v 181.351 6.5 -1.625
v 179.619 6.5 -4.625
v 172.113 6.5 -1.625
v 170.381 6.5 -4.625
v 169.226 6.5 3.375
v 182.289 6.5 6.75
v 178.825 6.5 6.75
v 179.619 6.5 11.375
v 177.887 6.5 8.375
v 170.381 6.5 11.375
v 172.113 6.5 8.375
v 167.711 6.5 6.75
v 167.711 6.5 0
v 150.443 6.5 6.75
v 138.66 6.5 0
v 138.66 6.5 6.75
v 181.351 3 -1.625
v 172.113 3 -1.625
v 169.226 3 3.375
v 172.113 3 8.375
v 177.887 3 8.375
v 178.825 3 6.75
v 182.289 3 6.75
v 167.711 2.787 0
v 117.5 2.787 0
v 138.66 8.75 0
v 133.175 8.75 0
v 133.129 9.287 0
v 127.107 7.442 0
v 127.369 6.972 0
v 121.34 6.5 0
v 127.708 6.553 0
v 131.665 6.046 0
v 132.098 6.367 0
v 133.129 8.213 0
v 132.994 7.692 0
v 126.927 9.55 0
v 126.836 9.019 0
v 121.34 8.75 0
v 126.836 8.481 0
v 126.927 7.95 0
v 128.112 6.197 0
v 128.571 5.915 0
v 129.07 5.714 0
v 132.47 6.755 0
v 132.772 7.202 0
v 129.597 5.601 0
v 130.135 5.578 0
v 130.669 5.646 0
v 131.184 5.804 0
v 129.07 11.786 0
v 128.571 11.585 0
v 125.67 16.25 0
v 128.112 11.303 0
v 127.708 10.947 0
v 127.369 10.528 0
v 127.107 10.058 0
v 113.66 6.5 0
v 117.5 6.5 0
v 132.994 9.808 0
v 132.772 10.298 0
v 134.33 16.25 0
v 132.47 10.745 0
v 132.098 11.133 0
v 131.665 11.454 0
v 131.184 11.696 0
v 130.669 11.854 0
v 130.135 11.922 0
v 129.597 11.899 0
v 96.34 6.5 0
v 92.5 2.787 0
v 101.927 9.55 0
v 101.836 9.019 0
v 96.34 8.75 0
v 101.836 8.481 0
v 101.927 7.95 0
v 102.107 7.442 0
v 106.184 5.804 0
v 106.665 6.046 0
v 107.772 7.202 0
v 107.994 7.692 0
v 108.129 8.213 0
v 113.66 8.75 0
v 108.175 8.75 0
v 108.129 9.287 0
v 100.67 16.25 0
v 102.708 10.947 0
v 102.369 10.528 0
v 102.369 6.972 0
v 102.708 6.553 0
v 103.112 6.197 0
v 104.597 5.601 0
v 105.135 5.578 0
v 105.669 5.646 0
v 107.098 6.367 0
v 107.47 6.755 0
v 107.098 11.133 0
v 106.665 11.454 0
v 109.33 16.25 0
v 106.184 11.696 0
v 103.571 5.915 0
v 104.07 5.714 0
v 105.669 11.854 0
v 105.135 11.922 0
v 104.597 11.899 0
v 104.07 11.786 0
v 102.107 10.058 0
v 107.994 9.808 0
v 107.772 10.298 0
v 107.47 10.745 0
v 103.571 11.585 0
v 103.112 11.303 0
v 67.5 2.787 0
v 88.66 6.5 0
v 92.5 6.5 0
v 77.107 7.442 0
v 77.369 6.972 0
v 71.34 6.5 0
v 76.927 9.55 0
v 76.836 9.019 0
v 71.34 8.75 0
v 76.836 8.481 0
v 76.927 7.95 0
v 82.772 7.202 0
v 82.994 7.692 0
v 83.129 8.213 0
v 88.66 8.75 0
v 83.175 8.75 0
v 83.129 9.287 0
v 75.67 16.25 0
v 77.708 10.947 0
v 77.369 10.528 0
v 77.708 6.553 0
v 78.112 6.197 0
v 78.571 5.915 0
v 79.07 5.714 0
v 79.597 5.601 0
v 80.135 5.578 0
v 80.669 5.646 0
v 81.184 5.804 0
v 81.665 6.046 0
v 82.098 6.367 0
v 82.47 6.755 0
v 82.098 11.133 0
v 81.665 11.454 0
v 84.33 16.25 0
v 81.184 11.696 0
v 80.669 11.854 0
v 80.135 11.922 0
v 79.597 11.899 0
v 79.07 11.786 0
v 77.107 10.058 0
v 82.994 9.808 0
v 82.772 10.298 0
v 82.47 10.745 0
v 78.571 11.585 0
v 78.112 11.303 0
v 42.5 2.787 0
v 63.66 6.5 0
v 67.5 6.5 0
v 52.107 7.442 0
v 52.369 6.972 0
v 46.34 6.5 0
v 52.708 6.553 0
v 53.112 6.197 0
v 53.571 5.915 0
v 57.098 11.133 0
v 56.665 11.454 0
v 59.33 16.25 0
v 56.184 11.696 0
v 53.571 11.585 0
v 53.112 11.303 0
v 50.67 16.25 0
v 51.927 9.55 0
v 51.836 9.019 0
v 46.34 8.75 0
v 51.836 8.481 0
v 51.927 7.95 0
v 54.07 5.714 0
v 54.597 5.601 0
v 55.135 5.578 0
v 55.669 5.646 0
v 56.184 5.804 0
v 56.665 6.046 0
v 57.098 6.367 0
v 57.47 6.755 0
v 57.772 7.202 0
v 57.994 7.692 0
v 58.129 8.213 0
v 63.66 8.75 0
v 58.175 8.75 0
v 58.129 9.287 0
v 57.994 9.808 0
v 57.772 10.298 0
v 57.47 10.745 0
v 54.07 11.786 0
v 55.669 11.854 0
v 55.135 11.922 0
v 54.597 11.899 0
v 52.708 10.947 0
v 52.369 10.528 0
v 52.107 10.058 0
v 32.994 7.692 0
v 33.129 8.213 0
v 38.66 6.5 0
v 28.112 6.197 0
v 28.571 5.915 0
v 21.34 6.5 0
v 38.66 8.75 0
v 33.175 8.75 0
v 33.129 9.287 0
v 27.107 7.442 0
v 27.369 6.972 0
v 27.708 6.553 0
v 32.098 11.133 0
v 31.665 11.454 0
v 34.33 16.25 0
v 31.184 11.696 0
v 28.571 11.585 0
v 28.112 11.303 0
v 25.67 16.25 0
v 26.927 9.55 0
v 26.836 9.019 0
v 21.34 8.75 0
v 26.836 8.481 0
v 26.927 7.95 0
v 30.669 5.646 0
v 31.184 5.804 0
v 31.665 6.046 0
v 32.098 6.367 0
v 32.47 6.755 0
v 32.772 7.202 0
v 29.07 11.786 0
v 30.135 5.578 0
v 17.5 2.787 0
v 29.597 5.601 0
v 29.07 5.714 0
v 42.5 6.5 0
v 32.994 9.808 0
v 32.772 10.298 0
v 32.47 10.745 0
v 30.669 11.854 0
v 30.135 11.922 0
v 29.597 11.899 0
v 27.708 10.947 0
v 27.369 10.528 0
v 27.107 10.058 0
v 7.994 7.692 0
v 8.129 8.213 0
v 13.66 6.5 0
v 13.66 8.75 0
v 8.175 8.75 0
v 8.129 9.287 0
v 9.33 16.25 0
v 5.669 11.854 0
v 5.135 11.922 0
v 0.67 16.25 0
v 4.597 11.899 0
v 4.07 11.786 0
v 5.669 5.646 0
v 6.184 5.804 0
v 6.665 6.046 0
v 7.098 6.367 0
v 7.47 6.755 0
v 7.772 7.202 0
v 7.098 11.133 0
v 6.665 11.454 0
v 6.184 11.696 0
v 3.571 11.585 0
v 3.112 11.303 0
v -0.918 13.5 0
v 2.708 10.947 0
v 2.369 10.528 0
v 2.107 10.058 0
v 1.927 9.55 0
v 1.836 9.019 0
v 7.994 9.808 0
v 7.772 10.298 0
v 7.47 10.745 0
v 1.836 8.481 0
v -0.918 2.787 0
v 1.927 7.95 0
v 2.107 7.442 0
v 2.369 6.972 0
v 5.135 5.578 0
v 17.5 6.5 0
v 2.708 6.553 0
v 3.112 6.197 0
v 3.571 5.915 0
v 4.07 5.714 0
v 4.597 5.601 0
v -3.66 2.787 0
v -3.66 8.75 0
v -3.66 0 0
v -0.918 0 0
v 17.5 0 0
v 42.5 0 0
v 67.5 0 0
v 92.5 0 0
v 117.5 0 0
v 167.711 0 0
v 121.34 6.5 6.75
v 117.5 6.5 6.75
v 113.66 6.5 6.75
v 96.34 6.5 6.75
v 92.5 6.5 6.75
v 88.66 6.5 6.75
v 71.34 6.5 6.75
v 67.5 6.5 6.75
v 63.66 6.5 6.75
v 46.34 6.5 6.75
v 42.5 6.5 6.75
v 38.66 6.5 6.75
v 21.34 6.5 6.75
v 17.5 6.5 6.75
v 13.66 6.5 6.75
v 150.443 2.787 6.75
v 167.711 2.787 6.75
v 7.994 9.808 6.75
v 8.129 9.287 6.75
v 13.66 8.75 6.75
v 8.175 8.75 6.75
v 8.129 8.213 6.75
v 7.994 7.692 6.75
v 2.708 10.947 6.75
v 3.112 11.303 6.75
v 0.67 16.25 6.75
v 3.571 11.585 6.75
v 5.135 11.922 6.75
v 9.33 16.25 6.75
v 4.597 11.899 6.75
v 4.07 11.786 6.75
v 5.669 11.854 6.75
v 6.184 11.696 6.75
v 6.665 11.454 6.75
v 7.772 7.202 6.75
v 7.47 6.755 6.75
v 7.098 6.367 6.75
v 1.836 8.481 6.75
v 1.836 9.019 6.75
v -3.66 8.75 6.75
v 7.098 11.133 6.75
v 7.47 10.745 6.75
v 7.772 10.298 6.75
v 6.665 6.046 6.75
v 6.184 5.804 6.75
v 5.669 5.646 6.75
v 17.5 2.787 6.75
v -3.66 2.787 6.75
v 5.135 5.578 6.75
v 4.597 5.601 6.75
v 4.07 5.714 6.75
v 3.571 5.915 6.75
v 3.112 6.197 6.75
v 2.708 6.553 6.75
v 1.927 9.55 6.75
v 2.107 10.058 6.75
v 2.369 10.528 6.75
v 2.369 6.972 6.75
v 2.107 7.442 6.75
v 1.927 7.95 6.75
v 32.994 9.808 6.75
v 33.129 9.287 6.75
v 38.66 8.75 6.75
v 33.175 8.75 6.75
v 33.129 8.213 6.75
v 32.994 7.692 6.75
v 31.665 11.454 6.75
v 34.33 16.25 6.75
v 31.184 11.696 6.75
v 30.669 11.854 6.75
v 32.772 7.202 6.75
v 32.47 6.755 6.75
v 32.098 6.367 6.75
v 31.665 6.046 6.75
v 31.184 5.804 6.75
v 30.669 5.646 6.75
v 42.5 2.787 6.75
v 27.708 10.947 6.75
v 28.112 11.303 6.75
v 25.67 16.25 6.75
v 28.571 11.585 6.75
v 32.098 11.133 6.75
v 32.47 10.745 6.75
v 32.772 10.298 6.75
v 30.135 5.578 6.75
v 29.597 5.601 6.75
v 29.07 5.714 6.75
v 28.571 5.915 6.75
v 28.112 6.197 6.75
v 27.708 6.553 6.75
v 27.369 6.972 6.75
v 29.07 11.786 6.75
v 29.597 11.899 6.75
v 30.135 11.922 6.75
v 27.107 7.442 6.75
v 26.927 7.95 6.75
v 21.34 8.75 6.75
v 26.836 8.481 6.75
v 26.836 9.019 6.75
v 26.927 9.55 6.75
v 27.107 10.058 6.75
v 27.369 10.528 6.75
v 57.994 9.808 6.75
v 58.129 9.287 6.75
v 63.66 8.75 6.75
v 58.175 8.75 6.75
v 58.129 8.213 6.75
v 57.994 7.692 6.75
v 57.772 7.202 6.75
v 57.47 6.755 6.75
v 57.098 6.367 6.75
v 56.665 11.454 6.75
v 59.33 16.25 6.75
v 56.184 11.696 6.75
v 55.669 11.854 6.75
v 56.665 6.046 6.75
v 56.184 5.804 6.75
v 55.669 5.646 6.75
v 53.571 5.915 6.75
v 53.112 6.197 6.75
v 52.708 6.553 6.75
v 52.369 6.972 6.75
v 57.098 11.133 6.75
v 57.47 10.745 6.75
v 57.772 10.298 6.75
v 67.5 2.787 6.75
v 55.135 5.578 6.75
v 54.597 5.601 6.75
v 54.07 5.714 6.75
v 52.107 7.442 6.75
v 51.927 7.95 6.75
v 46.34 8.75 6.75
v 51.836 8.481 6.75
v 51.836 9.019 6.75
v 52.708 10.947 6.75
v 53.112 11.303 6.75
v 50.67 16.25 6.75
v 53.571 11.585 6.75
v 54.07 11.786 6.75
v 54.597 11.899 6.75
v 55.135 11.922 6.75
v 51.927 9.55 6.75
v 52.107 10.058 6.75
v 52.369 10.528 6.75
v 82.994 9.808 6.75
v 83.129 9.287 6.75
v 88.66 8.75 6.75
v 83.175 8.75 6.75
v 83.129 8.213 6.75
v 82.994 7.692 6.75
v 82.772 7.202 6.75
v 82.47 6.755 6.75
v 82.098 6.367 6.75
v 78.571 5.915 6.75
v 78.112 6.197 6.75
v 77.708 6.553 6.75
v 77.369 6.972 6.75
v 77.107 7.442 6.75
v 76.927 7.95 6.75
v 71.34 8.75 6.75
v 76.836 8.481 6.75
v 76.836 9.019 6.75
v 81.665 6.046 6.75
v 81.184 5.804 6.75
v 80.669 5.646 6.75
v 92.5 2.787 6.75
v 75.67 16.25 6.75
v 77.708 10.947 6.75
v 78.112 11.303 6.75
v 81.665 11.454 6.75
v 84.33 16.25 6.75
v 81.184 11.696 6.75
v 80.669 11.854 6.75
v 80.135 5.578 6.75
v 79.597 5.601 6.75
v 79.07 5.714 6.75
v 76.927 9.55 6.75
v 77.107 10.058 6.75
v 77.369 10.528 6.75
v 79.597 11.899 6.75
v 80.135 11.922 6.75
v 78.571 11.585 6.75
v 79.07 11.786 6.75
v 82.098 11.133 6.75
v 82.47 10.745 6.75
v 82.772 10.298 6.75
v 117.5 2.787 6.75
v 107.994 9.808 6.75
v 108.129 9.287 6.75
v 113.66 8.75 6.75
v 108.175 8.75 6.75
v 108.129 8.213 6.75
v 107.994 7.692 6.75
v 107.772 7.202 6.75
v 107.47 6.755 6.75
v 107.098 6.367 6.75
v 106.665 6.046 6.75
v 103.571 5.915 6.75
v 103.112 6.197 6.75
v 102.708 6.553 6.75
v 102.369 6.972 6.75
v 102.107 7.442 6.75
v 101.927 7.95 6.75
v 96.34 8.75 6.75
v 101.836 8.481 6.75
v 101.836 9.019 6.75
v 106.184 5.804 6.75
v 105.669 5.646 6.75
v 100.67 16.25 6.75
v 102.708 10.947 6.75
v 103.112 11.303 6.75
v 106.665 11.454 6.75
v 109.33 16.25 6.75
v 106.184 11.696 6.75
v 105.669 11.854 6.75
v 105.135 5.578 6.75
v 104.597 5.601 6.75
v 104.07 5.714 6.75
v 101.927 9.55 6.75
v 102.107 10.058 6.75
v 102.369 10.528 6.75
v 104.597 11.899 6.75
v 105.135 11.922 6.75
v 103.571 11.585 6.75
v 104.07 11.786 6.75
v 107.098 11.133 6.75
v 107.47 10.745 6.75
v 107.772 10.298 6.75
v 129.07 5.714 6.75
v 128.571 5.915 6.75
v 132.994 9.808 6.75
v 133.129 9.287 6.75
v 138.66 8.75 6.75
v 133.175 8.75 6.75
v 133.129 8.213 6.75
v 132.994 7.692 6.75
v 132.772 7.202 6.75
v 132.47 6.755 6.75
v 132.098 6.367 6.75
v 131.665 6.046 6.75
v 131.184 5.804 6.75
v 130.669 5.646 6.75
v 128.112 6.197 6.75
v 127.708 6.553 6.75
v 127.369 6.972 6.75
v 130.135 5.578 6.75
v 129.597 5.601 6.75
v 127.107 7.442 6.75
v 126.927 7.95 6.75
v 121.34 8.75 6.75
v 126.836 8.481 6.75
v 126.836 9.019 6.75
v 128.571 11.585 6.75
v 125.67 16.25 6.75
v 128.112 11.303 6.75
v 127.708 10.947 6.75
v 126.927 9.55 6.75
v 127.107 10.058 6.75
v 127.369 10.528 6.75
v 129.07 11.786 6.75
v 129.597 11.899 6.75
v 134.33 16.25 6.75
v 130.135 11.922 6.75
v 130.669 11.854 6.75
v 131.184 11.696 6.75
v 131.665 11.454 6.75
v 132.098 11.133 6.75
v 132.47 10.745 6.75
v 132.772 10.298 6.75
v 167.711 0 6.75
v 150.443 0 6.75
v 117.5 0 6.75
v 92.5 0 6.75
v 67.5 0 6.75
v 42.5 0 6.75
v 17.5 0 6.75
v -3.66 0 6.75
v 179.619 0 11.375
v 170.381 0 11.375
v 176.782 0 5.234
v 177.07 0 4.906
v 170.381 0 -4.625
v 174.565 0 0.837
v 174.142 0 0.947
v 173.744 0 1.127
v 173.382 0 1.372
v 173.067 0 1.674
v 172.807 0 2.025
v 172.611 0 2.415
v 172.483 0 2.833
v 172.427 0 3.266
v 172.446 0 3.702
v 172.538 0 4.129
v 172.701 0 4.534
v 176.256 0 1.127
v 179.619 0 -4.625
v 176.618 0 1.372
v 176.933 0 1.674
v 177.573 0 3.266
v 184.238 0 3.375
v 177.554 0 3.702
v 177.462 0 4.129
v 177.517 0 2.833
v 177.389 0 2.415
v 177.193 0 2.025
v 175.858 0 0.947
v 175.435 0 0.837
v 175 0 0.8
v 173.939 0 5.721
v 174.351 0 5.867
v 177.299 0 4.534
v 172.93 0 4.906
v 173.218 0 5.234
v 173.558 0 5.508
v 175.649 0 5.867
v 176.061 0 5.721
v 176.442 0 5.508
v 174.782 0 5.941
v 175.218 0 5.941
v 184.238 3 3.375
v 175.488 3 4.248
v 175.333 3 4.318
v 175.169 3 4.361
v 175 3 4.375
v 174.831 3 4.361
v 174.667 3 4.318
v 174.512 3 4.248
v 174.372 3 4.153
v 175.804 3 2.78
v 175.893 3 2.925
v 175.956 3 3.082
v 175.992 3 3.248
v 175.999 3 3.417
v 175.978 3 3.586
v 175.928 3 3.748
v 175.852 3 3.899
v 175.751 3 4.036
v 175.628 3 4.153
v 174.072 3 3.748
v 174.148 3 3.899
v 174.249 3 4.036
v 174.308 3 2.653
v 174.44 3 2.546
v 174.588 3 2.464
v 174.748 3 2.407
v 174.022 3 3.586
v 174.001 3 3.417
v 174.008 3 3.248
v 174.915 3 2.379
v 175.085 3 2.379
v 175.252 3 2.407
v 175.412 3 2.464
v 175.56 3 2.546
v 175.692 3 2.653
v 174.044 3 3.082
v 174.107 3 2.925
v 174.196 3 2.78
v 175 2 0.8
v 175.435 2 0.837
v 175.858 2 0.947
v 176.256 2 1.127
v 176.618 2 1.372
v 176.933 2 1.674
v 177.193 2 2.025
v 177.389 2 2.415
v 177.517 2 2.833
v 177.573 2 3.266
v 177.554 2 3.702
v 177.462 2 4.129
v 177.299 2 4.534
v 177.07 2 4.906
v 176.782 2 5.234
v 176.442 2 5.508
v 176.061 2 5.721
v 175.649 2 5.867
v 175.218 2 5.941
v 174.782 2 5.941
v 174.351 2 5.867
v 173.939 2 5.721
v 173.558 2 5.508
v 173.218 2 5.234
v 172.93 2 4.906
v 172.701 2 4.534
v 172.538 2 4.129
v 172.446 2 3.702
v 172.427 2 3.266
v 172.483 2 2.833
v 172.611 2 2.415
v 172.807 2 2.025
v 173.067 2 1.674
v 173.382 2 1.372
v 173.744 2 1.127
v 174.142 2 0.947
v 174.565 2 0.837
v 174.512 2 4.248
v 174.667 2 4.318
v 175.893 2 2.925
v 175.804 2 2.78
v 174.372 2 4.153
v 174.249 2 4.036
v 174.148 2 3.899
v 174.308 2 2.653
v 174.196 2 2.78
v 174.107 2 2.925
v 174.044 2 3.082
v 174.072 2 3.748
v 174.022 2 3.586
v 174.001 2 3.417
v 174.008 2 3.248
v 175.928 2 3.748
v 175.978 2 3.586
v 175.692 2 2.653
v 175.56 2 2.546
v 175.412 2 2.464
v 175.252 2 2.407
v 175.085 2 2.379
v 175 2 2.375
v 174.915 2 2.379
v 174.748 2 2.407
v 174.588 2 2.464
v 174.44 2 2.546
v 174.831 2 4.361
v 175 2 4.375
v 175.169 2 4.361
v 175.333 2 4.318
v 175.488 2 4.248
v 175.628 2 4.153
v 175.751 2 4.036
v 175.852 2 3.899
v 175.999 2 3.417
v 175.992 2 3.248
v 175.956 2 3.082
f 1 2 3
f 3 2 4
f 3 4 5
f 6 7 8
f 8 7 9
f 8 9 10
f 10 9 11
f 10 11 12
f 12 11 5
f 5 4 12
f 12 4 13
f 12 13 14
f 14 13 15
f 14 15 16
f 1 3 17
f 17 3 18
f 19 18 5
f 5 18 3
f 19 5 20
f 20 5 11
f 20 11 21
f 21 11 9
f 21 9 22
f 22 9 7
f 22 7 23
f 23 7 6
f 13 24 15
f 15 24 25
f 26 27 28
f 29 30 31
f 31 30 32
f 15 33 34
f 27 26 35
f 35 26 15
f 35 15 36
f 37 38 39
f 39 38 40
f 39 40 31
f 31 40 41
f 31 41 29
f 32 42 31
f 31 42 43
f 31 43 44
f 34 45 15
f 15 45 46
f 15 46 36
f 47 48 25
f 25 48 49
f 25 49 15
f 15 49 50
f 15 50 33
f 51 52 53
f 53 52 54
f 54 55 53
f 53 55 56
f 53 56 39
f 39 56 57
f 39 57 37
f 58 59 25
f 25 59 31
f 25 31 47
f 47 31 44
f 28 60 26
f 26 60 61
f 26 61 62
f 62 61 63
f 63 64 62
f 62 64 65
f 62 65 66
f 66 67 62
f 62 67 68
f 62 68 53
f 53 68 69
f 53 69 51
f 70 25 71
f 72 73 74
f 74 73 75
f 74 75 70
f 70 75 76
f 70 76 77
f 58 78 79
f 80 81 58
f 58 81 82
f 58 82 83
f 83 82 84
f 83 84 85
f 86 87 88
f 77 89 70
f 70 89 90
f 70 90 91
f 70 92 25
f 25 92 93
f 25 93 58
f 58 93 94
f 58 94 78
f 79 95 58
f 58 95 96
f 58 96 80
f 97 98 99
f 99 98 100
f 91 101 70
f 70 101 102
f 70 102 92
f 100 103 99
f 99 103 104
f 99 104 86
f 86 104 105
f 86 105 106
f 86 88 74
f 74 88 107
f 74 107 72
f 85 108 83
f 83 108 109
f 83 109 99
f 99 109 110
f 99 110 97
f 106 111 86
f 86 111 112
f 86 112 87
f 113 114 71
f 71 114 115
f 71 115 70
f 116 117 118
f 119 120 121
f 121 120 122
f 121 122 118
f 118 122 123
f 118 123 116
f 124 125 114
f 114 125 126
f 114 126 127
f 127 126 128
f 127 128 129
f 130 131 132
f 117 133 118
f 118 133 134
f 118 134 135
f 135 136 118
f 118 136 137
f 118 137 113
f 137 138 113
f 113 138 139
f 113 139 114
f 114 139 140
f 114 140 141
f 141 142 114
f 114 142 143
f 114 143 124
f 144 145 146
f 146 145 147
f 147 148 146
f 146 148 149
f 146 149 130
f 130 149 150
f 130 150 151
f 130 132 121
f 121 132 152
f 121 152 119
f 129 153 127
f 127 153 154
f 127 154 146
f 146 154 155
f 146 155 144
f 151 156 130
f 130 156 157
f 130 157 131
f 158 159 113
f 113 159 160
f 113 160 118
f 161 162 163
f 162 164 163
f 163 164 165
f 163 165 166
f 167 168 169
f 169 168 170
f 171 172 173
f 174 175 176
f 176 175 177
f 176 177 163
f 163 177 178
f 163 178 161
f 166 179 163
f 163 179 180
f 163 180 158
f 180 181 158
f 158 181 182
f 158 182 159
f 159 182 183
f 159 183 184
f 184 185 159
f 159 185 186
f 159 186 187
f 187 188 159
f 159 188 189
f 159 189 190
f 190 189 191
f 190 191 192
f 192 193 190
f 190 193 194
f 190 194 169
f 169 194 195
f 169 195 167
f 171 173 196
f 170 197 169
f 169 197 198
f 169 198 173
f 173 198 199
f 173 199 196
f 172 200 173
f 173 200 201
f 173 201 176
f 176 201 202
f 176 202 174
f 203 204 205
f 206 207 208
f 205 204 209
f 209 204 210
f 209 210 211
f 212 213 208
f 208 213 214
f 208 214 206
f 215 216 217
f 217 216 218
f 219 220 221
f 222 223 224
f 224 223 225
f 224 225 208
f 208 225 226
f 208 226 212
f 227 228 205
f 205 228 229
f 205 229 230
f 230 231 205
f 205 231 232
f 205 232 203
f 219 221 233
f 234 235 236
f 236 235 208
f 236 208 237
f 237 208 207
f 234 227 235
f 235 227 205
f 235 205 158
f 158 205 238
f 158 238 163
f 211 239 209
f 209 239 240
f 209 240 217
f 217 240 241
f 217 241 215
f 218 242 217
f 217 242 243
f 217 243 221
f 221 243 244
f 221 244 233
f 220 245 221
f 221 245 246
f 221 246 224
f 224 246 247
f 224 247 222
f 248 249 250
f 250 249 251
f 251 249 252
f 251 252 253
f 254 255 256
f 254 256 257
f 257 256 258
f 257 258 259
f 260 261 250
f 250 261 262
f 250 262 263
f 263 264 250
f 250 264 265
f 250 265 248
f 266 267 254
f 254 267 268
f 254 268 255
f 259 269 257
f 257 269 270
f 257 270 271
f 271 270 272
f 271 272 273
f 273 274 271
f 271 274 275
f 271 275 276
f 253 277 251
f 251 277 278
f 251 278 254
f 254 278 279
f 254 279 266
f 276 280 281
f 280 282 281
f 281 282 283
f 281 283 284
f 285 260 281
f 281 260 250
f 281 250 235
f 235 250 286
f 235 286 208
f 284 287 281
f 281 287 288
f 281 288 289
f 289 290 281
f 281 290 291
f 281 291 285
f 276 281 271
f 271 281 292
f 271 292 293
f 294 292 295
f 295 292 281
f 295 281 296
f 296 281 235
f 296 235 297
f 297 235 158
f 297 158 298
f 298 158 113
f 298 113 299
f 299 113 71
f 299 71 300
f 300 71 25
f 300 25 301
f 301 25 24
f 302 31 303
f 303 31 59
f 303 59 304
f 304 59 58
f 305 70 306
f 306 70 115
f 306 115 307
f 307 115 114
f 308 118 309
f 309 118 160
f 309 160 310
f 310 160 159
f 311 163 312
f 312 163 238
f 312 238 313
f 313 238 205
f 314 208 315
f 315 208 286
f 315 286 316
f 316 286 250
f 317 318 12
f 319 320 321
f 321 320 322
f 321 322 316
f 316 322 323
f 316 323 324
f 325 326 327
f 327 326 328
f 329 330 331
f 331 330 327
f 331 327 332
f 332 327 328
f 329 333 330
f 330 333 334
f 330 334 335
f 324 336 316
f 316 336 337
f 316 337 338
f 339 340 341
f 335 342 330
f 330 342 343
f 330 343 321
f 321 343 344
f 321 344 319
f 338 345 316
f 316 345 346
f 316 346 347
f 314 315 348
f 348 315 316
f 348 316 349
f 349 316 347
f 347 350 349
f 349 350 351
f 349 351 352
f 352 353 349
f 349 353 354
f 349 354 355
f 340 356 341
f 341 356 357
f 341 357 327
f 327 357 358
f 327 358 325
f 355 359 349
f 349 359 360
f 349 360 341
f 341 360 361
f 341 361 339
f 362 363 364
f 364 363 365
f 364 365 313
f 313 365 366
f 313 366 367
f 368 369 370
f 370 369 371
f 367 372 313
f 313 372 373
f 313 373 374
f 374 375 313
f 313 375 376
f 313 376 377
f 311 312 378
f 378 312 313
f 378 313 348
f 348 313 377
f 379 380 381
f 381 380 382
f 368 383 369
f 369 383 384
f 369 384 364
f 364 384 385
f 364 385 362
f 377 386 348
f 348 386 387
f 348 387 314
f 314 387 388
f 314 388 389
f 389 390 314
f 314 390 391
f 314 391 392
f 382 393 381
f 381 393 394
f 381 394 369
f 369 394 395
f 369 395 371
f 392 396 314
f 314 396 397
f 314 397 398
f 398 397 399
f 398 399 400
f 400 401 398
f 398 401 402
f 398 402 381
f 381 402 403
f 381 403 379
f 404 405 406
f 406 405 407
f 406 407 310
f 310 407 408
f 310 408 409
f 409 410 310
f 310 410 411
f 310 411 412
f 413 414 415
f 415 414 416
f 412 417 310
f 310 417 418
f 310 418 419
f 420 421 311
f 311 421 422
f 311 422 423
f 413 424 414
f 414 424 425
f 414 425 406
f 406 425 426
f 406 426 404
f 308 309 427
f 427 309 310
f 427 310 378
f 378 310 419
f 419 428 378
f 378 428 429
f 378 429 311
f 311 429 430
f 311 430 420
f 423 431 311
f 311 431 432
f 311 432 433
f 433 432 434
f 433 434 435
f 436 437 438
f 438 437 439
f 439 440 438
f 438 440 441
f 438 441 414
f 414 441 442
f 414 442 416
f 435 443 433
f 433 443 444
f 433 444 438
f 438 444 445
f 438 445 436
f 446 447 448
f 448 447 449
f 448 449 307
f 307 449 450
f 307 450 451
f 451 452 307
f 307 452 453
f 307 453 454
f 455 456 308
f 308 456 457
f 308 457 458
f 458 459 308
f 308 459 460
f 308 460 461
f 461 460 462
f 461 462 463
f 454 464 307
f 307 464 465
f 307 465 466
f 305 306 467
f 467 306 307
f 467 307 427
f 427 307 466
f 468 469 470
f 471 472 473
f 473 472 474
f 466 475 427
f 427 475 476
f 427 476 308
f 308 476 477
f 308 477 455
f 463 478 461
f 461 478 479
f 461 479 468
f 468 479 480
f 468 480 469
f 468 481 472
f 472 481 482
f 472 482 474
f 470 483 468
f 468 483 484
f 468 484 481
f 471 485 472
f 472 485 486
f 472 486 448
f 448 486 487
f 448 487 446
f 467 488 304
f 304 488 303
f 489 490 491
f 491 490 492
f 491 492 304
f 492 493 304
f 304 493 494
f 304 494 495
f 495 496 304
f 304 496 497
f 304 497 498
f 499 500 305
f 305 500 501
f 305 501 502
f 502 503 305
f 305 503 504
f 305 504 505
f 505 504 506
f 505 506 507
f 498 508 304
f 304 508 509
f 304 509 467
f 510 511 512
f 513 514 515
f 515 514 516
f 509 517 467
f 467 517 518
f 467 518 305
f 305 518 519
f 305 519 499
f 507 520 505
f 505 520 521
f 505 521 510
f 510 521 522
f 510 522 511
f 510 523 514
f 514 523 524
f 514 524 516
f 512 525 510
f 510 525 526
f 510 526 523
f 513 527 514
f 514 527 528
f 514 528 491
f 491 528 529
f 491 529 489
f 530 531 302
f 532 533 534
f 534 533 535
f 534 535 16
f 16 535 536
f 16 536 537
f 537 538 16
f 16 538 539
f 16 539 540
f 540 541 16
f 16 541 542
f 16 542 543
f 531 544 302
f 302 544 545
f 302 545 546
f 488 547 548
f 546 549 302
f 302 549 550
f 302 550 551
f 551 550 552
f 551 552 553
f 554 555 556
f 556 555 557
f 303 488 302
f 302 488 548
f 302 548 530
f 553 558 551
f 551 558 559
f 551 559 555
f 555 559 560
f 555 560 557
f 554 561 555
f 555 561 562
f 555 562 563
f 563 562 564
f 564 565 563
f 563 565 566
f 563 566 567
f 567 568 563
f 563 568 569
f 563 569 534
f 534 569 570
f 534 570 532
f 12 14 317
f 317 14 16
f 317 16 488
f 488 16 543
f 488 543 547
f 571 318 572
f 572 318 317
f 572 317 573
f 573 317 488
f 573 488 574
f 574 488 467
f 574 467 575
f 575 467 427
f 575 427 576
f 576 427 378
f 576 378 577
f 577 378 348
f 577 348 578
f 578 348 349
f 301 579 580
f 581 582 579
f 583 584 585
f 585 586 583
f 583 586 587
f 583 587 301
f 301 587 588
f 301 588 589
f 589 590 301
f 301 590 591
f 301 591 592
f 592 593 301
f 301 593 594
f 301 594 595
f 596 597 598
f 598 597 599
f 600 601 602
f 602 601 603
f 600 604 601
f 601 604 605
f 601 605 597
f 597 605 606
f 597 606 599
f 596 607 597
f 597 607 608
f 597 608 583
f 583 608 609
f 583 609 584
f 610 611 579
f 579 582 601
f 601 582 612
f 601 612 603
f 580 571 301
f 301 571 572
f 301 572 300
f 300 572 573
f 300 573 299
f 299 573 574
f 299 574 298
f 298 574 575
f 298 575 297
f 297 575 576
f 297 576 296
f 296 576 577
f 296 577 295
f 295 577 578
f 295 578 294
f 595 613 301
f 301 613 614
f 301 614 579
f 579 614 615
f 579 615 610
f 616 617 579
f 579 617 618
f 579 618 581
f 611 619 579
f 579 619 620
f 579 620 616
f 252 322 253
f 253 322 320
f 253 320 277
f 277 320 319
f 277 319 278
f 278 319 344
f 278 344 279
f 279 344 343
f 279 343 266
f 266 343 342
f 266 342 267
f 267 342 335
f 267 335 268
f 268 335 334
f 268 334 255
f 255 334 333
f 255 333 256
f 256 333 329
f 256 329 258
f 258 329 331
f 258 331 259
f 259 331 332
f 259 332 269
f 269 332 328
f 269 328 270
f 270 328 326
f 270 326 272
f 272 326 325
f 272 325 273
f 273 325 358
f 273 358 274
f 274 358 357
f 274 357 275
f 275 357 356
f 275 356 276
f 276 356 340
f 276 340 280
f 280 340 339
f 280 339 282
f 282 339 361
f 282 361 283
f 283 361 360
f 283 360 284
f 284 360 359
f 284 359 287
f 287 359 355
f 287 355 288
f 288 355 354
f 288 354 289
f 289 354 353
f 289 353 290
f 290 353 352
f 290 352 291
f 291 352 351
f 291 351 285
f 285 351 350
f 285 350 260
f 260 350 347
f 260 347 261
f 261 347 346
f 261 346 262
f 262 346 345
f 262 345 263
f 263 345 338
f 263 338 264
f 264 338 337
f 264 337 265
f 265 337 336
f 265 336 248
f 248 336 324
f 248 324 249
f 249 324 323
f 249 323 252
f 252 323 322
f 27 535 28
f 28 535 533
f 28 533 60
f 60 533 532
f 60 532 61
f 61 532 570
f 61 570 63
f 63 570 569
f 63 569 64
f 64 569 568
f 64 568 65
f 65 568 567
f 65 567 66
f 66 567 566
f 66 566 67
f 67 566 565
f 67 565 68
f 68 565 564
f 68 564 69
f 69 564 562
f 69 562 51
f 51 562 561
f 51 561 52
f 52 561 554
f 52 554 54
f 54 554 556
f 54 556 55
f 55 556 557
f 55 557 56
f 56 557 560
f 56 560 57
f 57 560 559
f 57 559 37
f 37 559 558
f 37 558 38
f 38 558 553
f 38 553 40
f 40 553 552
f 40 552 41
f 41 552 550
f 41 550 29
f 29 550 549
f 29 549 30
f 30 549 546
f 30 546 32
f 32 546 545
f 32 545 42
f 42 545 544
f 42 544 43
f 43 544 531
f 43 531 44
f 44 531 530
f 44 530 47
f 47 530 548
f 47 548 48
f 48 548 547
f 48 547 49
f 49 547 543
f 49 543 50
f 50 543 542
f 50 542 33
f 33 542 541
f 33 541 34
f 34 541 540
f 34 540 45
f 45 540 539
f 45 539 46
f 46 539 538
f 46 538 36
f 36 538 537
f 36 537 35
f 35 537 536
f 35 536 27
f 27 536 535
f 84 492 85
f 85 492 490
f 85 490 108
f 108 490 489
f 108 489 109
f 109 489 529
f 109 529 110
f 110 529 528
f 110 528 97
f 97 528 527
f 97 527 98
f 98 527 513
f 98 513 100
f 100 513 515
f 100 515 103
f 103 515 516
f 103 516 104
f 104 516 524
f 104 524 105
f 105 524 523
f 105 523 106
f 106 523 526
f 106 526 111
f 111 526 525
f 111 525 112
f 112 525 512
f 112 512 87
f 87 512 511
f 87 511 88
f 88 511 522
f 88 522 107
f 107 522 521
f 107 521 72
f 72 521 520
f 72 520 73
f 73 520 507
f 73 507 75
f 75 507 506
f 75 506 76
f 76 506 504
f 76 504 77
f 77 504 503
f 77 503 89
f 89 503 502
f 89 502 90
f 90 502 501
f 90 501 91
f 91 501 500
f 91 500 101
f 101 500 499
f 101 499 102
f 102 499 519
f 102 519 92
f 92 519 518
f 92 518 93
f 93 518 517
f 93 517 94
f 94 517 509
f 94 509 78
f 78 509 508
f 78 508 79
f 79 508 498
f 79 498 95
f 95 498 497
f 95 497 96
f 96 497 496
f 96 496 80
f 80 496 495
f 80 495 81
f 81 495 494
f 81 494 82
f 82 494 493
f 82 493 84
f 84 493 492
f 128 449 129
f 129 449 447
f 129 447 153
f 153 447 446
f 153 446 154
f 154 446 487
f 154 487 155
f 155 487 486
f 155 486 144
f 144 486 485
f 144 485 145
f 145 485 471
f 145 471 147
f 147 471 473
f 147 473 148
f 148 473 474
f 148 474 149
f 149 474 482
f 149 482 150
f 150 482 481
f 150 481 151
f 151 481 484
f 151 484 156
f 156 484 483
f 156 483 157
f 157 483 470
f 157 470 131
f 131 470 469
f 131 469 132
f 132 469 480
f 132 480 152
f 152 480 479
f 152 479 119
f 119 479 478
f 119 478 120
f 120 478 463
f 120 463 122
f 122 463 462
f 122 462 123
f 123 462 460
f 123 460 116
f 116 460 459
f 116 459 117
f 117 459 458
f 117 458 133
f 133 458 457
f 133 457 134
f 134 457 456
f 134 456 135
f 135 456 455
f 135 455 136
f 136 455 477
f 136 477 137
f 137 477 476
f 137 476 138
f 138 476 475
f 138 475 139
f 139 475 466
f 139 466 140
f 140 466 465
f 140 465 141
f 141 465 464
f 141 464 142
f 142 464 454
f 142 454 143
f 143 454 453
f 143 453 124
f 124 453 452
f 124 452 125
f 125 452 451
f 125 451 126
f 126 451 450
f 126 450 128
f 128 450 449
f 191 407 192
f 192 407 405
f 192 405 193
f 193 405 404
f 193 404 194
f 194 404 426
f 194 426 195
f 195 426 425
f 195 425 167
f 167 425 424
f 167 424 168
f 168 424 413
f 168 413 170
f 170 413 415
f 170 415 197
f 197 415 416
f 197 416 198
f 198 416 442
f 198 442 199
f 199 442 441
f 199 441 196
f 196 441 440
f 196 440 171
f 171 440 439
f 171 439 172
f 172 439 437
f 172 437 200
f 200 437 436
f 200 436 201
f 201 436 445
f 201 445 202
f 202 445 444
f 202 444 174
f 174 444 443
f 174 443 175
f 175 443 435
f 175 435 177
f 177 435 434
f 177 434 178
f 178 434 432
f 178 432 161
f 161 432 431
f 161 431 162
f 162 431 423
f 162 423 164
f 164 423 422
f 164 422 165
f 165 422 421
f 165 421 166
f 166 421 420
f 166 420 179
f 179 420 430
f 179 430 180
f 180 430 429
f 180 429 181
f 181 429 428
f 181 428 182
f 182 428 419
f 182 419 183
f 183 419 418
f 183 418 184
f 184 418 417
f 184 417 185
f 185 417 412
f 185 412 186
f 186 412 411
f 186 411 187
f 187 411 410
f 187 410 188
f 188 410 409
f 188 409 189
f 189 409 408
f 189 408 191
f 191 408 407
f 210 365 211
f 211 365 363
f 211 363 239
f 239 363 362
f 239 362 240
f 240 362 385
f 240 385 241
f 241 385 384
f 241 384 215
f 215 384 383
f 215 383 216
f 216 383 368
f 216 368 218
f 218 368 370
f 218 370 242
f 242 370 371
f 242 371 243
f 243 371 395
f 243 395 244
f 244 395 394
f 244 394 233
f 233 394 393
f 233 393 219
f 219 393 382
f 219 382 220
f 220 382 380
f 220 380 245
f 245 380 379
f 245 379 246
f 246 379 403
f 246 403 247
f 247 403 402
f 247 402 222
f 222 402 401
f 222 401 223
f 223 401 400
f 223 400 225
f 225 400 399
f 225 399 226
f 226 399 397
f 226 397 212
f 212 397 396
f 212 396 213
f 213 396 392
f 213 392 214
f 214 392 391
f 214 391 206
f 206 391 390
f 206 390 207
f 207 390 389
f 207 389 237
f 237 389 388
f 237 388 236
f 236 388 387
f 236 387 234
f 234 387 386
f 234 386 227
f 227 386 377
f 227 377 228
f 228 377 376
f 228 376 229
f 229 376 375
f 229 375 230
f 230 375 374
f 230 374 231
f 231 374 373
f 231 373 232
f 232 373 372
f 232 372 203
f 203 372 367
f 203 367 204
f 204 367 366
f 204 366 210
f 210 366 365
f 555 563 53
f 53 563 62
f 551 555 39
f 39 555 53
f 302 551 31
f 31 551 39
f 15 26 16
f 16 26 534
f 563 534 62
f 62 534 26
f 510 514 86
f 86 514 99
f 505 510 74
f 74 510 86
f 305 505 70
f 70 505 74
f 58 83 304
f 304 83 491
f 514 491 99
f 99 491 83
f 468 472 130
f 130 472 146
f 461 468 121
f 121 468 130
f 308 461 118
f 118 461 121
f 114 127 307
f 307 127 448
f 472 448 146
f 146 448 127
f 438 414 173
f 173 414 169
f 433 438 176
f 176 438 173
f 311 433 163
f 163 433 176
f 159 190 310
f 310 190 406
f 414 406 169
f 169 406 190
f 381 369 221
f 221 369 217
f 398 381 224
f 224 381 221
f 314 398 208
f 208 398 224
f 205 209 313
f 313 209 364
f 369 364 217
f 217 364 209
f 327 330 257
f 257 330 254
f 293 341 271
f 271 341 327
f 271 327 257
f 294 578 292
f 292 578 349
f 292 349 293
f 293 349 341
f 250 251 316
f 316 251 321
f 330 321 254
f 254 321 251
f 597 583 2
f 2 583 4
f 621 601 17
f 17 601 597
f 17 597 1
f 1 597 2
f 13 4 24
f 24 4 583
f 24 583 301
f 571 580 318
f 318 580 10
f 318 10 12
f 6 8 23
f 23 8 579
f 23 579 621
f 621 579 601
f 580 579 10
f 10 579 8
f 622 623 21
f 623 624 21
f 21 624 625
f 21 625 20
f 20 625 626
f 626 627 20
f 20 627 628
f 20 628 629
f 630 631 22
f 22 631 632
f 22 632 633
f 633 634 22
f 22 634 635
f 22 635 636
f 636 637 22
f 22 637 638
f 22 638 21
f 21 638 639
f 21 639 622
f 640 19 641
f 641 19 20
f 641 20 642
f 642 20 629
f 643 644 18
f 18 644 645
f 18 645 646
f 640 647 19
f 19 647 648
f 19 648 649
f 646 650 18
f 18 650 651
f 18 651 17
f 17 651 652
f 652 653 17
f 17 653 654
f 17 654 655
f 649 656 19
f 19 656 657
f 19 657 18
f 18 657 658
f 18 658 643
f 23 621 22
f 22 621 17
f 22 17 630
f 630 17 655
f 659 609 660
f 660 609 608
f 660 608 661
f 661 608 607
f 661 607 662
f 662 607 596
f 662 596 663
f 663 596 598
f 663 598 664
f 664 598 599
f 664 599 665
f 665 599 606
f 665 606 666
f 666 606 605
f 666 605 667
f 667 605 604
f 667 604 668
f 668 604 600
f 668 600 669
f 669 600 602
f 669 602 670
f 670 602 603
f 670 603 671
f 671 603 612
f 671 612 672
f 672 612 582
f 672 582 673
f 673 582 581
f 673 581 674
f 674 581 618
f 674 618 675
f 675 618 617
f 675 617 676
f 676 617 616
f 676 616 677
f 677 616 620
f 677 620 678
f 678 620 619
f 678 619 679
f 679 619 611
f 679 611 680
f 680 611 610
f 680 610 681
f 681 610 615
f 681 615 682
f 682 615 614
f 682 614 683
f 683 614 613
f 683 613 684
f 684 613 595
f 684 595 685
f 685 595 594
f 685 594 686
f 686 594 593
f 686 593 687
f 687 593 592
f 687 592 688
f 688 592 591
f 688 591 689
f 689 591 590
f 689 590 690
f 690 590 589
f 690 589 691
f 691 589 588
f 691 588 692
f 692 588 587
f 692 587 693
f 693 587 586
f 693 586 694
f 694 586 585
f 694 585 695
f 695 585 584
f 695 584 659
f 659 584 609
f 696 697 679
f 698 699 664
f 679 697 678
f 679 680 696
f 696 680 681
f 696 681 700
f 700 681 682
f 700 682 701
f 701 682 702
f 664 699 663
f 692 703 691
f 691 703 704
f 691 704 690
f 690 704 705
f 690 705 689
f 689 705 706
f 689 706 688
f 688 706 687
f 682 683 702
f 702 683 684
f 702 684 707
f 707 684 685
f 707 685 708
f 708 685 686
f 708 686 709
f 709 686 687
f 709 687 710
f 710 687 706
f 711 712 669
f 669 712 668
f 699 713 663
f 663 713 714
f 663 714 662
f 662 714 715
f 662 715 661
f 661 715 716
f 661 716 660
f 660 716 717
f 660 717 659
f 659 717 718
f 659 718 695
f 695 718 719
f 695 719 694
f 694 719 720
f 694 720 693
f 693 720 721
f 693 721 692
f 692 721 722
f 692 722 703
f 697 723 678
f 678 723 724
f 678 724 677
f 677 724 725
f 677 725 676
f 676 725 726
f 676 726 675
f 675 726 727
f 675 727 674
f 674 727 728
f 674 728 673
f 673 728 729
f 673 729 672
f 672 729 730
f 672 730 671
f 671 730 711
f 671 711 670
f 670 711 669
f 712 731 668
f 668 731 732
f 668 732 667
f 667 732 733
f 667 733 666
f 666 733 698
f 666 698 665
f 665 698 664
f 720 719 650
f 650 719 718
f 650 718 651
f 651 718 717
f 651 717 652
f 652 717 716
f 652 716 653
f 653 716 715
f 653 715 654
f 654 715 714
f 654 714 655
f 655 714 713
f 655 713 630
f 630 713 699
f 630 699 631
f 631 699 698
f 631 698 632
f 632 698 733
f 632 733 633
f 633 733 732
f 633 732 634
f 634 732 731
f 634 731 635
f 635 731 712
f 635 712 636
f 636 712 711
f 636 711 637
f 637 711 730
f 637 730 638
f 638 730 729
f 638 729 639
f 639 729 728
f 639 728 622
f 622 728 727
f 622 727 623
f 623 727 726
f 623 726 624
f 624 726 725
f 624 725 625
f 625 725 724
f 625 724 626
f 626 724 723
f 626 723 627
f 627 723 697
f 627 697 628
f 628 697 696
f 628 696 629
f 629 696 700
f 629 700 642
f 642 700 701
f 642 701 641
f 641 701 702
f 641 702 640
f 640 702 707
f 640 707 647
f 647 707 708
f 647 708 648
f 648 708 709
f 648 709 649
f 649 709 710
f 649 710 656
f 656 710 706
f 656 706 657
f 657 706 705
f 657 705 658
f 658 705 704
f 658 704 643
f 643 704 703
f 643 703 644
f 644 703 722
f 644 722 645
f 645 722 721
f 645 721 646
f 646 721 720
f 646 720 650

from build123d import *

# Parameters (mm, degrees)
SKETCH1_W           = 175
SKETCH1_H           = 6.75
BOSS_EXTRUDE1_DEPTH = 6.5
SKETCH2_W           = 10
SKETCH2_H           = 6.75
BOSS_EXTRUDE2_DEPTH = 7.5
SKETCH5_R           = 3.175
CUT_EXTRUDE2_DEPTH  = 10
LPATTERN1_COUNT     = 6
LPATTERN1_PITCH     = 25
SKETCH6_R           = 3.175
BOSS_EXTRUDE4_DEPTH = 6.75
LPATTERN2_COUNT     = 6
LPATTERN2_PITCH     = 25
BOSS_EXTRUDE5_DEPTH = 6.5
BOSS_EXTRUDE6_DEPTH = 3
SKETCH10_R          = 2.575
CUT_EXTRUDE4_DEPTH  = 2
CUT_EXTRUDE5_DEPTH  = 18
SKETCH12_R          = 1
CUT_EXTRUDE6_DEPTH  = 10


with BuildPart() as part:
    # Sketch1 → Boss-Extrude1 (new body)
    with BuildSketch(Plane(origin=(0, 0, 0), x_dir=(1, 0, 0), z_dir=(0, 1, 0))):
        with Locations((87.5, -3.375)):
            Rectangle(SKETCH1_W, SKETCH1_H)
    extrude(amount=BOSS_EXTRUDE1_DEPTH)

    # Sketch2 → Boss-Extrude2 (add)
    with BuildSketch(Plane(origin=(0, 6.5, 0), x_dir=(1, 0, 0), z_dir=(0, 1, 0))):
        with Locations((5, -3.375)):
            Rectangle(SKETCH2_W, SKETCH2_H)
    boss_extrude2 = extrude(amount=BOSS_EXTRUDE2_DEPTH)

    # Sketch5 → Cut-Extrude2 (cut)
    with BuildSketch(Plane.XY.offset(6.75)):
        with Locations((5, 8.75)):
            Circle(SKETCH5_R)
    cut_extrude2 = extrude(amount=-CUT_EXTRUDE2_DEPTH, mode=Mode.SUBTRACT)

    # LPattern1: Boss-Extrude2, Cut-Extrude2 ×6
    with Locations(*[(i * LPATTERN1_PITCH, 0, 0) for i in range(1, LPATTERN1_COUNT)]):
        add(boss_extrude2)
        add(cut_extrude2, mode=Mode.SUBTRACT)

    # Sketch6 → Boss-Extrude4 (add)
    with BuildSketch(Plane.XY.offset(6.75)):
        Polygon((138.660254038, 8.75), (138.660254038, 0), (121.339745962, 0), (121.339745962, 8.75), (125.669872981, 16.25), (134.330127019, 16.25), align=None)
        with Locations((130, 8.75)):
            Circle(SKETCH6_R, mode=Mode.SUBTRACT)
    boss_extrude4 = extrude(amount=-BOSS_EXTRUDE4_DEPTH)

    # LPattern2: Boss-Extrude4 ×6
    with Locations(*[(-i * LPATTERN2_PITCH, 0, 0) for i in range(1, LPATTERN2_COUNT)]):
        add(boss_extrude4)

    # Sketch7 → Boss-Extrude5 (add)
    with BuildSketch(Plane(origin=(0, 6.5, 0), x_dir=(1, 0, 0), z_dir=(0, 1, 0))):
        Polygon((172.113248654, -8.375), (177.886751346, -8.375), (178.824945533, -6.75), (182.289047149, -6.75), (179.618802154, -11.375), (170.381197846, -11.375), (165.762395693, -3.375), (170.381197846, 4.625), (179.618802154, 4.625), (181.350852961, 1.625), (177.886751346, 1.625), (172.113248654, 1.625), (169.226497308, -3.375), align=None)
    extrude(amount=-BOSS_EXTRUDE5_DEPTH)

    # Sketch9 → Boss-Extrude6 (add)
    with BuildSketch(Plane(origin=(0, 0, 0), x_dir=(-1, 0, 0), z_dir=(0, -1, 0))):
        Polygon((-169.226497308, -3.375), (-172.113248654, 1.625), (-177.886751346, 1.625), (-181.350852961, 1.625), (-184.237604307, -3.375), (-182.289047149, -6.75), (-178.824945533, -6.75), (-177.886751346, -8.375), (-172.113248654, -8.375), align=None)
    extrude(amount=-BOSS_EXTRUDE6_DEPTH)

    # Sketch10 → Cut-Extrude4 (cut)
    with BuildSketch(Plane(origin=(0, 0, 0), x_dir=(-1, 0, 0), z_dir=(0, -1, 0))):
        with Locations((-175, -3.375)):
            Circle(SKETCH10_R)
    extrude(amount=-CUT_EXTRUDE4_DEPTH, mode=Mode.SUBTRACT)

    # Sketch11 → Cut-Extrude5 (cut)
    with BuildSketch(Plane(origin=(0, 3, 0), x_dir=(1, 0, 0), z_dir=(0, 1, 0))):
        Polygon((180.773502692, -3.375), (177.886751346, 1.625), (172.113248654, 1.625), (169.226497308, -3.375), (172.113248654, -8.375), (177.886751346, -8.375), align=None)
    extrude(amount=CUT_EXTRUDE5_DEPTH, mode=Mode.SUBTRACT)

    # Sketch12 → Cut-Extrude6 (cut)
    with BuildSketch(Plane(origin=(0, 3, 0), x_dir=(1, 0, 0), z_dir=(0, 1, 0))):
        with Locations((175, -3.375)):
            Circle(SKETCH12_R)
    extrude(amount=-CUT_EXTRUDE6_DEPTH, mode=Mode.SUBTRACT)


solid = part.part
